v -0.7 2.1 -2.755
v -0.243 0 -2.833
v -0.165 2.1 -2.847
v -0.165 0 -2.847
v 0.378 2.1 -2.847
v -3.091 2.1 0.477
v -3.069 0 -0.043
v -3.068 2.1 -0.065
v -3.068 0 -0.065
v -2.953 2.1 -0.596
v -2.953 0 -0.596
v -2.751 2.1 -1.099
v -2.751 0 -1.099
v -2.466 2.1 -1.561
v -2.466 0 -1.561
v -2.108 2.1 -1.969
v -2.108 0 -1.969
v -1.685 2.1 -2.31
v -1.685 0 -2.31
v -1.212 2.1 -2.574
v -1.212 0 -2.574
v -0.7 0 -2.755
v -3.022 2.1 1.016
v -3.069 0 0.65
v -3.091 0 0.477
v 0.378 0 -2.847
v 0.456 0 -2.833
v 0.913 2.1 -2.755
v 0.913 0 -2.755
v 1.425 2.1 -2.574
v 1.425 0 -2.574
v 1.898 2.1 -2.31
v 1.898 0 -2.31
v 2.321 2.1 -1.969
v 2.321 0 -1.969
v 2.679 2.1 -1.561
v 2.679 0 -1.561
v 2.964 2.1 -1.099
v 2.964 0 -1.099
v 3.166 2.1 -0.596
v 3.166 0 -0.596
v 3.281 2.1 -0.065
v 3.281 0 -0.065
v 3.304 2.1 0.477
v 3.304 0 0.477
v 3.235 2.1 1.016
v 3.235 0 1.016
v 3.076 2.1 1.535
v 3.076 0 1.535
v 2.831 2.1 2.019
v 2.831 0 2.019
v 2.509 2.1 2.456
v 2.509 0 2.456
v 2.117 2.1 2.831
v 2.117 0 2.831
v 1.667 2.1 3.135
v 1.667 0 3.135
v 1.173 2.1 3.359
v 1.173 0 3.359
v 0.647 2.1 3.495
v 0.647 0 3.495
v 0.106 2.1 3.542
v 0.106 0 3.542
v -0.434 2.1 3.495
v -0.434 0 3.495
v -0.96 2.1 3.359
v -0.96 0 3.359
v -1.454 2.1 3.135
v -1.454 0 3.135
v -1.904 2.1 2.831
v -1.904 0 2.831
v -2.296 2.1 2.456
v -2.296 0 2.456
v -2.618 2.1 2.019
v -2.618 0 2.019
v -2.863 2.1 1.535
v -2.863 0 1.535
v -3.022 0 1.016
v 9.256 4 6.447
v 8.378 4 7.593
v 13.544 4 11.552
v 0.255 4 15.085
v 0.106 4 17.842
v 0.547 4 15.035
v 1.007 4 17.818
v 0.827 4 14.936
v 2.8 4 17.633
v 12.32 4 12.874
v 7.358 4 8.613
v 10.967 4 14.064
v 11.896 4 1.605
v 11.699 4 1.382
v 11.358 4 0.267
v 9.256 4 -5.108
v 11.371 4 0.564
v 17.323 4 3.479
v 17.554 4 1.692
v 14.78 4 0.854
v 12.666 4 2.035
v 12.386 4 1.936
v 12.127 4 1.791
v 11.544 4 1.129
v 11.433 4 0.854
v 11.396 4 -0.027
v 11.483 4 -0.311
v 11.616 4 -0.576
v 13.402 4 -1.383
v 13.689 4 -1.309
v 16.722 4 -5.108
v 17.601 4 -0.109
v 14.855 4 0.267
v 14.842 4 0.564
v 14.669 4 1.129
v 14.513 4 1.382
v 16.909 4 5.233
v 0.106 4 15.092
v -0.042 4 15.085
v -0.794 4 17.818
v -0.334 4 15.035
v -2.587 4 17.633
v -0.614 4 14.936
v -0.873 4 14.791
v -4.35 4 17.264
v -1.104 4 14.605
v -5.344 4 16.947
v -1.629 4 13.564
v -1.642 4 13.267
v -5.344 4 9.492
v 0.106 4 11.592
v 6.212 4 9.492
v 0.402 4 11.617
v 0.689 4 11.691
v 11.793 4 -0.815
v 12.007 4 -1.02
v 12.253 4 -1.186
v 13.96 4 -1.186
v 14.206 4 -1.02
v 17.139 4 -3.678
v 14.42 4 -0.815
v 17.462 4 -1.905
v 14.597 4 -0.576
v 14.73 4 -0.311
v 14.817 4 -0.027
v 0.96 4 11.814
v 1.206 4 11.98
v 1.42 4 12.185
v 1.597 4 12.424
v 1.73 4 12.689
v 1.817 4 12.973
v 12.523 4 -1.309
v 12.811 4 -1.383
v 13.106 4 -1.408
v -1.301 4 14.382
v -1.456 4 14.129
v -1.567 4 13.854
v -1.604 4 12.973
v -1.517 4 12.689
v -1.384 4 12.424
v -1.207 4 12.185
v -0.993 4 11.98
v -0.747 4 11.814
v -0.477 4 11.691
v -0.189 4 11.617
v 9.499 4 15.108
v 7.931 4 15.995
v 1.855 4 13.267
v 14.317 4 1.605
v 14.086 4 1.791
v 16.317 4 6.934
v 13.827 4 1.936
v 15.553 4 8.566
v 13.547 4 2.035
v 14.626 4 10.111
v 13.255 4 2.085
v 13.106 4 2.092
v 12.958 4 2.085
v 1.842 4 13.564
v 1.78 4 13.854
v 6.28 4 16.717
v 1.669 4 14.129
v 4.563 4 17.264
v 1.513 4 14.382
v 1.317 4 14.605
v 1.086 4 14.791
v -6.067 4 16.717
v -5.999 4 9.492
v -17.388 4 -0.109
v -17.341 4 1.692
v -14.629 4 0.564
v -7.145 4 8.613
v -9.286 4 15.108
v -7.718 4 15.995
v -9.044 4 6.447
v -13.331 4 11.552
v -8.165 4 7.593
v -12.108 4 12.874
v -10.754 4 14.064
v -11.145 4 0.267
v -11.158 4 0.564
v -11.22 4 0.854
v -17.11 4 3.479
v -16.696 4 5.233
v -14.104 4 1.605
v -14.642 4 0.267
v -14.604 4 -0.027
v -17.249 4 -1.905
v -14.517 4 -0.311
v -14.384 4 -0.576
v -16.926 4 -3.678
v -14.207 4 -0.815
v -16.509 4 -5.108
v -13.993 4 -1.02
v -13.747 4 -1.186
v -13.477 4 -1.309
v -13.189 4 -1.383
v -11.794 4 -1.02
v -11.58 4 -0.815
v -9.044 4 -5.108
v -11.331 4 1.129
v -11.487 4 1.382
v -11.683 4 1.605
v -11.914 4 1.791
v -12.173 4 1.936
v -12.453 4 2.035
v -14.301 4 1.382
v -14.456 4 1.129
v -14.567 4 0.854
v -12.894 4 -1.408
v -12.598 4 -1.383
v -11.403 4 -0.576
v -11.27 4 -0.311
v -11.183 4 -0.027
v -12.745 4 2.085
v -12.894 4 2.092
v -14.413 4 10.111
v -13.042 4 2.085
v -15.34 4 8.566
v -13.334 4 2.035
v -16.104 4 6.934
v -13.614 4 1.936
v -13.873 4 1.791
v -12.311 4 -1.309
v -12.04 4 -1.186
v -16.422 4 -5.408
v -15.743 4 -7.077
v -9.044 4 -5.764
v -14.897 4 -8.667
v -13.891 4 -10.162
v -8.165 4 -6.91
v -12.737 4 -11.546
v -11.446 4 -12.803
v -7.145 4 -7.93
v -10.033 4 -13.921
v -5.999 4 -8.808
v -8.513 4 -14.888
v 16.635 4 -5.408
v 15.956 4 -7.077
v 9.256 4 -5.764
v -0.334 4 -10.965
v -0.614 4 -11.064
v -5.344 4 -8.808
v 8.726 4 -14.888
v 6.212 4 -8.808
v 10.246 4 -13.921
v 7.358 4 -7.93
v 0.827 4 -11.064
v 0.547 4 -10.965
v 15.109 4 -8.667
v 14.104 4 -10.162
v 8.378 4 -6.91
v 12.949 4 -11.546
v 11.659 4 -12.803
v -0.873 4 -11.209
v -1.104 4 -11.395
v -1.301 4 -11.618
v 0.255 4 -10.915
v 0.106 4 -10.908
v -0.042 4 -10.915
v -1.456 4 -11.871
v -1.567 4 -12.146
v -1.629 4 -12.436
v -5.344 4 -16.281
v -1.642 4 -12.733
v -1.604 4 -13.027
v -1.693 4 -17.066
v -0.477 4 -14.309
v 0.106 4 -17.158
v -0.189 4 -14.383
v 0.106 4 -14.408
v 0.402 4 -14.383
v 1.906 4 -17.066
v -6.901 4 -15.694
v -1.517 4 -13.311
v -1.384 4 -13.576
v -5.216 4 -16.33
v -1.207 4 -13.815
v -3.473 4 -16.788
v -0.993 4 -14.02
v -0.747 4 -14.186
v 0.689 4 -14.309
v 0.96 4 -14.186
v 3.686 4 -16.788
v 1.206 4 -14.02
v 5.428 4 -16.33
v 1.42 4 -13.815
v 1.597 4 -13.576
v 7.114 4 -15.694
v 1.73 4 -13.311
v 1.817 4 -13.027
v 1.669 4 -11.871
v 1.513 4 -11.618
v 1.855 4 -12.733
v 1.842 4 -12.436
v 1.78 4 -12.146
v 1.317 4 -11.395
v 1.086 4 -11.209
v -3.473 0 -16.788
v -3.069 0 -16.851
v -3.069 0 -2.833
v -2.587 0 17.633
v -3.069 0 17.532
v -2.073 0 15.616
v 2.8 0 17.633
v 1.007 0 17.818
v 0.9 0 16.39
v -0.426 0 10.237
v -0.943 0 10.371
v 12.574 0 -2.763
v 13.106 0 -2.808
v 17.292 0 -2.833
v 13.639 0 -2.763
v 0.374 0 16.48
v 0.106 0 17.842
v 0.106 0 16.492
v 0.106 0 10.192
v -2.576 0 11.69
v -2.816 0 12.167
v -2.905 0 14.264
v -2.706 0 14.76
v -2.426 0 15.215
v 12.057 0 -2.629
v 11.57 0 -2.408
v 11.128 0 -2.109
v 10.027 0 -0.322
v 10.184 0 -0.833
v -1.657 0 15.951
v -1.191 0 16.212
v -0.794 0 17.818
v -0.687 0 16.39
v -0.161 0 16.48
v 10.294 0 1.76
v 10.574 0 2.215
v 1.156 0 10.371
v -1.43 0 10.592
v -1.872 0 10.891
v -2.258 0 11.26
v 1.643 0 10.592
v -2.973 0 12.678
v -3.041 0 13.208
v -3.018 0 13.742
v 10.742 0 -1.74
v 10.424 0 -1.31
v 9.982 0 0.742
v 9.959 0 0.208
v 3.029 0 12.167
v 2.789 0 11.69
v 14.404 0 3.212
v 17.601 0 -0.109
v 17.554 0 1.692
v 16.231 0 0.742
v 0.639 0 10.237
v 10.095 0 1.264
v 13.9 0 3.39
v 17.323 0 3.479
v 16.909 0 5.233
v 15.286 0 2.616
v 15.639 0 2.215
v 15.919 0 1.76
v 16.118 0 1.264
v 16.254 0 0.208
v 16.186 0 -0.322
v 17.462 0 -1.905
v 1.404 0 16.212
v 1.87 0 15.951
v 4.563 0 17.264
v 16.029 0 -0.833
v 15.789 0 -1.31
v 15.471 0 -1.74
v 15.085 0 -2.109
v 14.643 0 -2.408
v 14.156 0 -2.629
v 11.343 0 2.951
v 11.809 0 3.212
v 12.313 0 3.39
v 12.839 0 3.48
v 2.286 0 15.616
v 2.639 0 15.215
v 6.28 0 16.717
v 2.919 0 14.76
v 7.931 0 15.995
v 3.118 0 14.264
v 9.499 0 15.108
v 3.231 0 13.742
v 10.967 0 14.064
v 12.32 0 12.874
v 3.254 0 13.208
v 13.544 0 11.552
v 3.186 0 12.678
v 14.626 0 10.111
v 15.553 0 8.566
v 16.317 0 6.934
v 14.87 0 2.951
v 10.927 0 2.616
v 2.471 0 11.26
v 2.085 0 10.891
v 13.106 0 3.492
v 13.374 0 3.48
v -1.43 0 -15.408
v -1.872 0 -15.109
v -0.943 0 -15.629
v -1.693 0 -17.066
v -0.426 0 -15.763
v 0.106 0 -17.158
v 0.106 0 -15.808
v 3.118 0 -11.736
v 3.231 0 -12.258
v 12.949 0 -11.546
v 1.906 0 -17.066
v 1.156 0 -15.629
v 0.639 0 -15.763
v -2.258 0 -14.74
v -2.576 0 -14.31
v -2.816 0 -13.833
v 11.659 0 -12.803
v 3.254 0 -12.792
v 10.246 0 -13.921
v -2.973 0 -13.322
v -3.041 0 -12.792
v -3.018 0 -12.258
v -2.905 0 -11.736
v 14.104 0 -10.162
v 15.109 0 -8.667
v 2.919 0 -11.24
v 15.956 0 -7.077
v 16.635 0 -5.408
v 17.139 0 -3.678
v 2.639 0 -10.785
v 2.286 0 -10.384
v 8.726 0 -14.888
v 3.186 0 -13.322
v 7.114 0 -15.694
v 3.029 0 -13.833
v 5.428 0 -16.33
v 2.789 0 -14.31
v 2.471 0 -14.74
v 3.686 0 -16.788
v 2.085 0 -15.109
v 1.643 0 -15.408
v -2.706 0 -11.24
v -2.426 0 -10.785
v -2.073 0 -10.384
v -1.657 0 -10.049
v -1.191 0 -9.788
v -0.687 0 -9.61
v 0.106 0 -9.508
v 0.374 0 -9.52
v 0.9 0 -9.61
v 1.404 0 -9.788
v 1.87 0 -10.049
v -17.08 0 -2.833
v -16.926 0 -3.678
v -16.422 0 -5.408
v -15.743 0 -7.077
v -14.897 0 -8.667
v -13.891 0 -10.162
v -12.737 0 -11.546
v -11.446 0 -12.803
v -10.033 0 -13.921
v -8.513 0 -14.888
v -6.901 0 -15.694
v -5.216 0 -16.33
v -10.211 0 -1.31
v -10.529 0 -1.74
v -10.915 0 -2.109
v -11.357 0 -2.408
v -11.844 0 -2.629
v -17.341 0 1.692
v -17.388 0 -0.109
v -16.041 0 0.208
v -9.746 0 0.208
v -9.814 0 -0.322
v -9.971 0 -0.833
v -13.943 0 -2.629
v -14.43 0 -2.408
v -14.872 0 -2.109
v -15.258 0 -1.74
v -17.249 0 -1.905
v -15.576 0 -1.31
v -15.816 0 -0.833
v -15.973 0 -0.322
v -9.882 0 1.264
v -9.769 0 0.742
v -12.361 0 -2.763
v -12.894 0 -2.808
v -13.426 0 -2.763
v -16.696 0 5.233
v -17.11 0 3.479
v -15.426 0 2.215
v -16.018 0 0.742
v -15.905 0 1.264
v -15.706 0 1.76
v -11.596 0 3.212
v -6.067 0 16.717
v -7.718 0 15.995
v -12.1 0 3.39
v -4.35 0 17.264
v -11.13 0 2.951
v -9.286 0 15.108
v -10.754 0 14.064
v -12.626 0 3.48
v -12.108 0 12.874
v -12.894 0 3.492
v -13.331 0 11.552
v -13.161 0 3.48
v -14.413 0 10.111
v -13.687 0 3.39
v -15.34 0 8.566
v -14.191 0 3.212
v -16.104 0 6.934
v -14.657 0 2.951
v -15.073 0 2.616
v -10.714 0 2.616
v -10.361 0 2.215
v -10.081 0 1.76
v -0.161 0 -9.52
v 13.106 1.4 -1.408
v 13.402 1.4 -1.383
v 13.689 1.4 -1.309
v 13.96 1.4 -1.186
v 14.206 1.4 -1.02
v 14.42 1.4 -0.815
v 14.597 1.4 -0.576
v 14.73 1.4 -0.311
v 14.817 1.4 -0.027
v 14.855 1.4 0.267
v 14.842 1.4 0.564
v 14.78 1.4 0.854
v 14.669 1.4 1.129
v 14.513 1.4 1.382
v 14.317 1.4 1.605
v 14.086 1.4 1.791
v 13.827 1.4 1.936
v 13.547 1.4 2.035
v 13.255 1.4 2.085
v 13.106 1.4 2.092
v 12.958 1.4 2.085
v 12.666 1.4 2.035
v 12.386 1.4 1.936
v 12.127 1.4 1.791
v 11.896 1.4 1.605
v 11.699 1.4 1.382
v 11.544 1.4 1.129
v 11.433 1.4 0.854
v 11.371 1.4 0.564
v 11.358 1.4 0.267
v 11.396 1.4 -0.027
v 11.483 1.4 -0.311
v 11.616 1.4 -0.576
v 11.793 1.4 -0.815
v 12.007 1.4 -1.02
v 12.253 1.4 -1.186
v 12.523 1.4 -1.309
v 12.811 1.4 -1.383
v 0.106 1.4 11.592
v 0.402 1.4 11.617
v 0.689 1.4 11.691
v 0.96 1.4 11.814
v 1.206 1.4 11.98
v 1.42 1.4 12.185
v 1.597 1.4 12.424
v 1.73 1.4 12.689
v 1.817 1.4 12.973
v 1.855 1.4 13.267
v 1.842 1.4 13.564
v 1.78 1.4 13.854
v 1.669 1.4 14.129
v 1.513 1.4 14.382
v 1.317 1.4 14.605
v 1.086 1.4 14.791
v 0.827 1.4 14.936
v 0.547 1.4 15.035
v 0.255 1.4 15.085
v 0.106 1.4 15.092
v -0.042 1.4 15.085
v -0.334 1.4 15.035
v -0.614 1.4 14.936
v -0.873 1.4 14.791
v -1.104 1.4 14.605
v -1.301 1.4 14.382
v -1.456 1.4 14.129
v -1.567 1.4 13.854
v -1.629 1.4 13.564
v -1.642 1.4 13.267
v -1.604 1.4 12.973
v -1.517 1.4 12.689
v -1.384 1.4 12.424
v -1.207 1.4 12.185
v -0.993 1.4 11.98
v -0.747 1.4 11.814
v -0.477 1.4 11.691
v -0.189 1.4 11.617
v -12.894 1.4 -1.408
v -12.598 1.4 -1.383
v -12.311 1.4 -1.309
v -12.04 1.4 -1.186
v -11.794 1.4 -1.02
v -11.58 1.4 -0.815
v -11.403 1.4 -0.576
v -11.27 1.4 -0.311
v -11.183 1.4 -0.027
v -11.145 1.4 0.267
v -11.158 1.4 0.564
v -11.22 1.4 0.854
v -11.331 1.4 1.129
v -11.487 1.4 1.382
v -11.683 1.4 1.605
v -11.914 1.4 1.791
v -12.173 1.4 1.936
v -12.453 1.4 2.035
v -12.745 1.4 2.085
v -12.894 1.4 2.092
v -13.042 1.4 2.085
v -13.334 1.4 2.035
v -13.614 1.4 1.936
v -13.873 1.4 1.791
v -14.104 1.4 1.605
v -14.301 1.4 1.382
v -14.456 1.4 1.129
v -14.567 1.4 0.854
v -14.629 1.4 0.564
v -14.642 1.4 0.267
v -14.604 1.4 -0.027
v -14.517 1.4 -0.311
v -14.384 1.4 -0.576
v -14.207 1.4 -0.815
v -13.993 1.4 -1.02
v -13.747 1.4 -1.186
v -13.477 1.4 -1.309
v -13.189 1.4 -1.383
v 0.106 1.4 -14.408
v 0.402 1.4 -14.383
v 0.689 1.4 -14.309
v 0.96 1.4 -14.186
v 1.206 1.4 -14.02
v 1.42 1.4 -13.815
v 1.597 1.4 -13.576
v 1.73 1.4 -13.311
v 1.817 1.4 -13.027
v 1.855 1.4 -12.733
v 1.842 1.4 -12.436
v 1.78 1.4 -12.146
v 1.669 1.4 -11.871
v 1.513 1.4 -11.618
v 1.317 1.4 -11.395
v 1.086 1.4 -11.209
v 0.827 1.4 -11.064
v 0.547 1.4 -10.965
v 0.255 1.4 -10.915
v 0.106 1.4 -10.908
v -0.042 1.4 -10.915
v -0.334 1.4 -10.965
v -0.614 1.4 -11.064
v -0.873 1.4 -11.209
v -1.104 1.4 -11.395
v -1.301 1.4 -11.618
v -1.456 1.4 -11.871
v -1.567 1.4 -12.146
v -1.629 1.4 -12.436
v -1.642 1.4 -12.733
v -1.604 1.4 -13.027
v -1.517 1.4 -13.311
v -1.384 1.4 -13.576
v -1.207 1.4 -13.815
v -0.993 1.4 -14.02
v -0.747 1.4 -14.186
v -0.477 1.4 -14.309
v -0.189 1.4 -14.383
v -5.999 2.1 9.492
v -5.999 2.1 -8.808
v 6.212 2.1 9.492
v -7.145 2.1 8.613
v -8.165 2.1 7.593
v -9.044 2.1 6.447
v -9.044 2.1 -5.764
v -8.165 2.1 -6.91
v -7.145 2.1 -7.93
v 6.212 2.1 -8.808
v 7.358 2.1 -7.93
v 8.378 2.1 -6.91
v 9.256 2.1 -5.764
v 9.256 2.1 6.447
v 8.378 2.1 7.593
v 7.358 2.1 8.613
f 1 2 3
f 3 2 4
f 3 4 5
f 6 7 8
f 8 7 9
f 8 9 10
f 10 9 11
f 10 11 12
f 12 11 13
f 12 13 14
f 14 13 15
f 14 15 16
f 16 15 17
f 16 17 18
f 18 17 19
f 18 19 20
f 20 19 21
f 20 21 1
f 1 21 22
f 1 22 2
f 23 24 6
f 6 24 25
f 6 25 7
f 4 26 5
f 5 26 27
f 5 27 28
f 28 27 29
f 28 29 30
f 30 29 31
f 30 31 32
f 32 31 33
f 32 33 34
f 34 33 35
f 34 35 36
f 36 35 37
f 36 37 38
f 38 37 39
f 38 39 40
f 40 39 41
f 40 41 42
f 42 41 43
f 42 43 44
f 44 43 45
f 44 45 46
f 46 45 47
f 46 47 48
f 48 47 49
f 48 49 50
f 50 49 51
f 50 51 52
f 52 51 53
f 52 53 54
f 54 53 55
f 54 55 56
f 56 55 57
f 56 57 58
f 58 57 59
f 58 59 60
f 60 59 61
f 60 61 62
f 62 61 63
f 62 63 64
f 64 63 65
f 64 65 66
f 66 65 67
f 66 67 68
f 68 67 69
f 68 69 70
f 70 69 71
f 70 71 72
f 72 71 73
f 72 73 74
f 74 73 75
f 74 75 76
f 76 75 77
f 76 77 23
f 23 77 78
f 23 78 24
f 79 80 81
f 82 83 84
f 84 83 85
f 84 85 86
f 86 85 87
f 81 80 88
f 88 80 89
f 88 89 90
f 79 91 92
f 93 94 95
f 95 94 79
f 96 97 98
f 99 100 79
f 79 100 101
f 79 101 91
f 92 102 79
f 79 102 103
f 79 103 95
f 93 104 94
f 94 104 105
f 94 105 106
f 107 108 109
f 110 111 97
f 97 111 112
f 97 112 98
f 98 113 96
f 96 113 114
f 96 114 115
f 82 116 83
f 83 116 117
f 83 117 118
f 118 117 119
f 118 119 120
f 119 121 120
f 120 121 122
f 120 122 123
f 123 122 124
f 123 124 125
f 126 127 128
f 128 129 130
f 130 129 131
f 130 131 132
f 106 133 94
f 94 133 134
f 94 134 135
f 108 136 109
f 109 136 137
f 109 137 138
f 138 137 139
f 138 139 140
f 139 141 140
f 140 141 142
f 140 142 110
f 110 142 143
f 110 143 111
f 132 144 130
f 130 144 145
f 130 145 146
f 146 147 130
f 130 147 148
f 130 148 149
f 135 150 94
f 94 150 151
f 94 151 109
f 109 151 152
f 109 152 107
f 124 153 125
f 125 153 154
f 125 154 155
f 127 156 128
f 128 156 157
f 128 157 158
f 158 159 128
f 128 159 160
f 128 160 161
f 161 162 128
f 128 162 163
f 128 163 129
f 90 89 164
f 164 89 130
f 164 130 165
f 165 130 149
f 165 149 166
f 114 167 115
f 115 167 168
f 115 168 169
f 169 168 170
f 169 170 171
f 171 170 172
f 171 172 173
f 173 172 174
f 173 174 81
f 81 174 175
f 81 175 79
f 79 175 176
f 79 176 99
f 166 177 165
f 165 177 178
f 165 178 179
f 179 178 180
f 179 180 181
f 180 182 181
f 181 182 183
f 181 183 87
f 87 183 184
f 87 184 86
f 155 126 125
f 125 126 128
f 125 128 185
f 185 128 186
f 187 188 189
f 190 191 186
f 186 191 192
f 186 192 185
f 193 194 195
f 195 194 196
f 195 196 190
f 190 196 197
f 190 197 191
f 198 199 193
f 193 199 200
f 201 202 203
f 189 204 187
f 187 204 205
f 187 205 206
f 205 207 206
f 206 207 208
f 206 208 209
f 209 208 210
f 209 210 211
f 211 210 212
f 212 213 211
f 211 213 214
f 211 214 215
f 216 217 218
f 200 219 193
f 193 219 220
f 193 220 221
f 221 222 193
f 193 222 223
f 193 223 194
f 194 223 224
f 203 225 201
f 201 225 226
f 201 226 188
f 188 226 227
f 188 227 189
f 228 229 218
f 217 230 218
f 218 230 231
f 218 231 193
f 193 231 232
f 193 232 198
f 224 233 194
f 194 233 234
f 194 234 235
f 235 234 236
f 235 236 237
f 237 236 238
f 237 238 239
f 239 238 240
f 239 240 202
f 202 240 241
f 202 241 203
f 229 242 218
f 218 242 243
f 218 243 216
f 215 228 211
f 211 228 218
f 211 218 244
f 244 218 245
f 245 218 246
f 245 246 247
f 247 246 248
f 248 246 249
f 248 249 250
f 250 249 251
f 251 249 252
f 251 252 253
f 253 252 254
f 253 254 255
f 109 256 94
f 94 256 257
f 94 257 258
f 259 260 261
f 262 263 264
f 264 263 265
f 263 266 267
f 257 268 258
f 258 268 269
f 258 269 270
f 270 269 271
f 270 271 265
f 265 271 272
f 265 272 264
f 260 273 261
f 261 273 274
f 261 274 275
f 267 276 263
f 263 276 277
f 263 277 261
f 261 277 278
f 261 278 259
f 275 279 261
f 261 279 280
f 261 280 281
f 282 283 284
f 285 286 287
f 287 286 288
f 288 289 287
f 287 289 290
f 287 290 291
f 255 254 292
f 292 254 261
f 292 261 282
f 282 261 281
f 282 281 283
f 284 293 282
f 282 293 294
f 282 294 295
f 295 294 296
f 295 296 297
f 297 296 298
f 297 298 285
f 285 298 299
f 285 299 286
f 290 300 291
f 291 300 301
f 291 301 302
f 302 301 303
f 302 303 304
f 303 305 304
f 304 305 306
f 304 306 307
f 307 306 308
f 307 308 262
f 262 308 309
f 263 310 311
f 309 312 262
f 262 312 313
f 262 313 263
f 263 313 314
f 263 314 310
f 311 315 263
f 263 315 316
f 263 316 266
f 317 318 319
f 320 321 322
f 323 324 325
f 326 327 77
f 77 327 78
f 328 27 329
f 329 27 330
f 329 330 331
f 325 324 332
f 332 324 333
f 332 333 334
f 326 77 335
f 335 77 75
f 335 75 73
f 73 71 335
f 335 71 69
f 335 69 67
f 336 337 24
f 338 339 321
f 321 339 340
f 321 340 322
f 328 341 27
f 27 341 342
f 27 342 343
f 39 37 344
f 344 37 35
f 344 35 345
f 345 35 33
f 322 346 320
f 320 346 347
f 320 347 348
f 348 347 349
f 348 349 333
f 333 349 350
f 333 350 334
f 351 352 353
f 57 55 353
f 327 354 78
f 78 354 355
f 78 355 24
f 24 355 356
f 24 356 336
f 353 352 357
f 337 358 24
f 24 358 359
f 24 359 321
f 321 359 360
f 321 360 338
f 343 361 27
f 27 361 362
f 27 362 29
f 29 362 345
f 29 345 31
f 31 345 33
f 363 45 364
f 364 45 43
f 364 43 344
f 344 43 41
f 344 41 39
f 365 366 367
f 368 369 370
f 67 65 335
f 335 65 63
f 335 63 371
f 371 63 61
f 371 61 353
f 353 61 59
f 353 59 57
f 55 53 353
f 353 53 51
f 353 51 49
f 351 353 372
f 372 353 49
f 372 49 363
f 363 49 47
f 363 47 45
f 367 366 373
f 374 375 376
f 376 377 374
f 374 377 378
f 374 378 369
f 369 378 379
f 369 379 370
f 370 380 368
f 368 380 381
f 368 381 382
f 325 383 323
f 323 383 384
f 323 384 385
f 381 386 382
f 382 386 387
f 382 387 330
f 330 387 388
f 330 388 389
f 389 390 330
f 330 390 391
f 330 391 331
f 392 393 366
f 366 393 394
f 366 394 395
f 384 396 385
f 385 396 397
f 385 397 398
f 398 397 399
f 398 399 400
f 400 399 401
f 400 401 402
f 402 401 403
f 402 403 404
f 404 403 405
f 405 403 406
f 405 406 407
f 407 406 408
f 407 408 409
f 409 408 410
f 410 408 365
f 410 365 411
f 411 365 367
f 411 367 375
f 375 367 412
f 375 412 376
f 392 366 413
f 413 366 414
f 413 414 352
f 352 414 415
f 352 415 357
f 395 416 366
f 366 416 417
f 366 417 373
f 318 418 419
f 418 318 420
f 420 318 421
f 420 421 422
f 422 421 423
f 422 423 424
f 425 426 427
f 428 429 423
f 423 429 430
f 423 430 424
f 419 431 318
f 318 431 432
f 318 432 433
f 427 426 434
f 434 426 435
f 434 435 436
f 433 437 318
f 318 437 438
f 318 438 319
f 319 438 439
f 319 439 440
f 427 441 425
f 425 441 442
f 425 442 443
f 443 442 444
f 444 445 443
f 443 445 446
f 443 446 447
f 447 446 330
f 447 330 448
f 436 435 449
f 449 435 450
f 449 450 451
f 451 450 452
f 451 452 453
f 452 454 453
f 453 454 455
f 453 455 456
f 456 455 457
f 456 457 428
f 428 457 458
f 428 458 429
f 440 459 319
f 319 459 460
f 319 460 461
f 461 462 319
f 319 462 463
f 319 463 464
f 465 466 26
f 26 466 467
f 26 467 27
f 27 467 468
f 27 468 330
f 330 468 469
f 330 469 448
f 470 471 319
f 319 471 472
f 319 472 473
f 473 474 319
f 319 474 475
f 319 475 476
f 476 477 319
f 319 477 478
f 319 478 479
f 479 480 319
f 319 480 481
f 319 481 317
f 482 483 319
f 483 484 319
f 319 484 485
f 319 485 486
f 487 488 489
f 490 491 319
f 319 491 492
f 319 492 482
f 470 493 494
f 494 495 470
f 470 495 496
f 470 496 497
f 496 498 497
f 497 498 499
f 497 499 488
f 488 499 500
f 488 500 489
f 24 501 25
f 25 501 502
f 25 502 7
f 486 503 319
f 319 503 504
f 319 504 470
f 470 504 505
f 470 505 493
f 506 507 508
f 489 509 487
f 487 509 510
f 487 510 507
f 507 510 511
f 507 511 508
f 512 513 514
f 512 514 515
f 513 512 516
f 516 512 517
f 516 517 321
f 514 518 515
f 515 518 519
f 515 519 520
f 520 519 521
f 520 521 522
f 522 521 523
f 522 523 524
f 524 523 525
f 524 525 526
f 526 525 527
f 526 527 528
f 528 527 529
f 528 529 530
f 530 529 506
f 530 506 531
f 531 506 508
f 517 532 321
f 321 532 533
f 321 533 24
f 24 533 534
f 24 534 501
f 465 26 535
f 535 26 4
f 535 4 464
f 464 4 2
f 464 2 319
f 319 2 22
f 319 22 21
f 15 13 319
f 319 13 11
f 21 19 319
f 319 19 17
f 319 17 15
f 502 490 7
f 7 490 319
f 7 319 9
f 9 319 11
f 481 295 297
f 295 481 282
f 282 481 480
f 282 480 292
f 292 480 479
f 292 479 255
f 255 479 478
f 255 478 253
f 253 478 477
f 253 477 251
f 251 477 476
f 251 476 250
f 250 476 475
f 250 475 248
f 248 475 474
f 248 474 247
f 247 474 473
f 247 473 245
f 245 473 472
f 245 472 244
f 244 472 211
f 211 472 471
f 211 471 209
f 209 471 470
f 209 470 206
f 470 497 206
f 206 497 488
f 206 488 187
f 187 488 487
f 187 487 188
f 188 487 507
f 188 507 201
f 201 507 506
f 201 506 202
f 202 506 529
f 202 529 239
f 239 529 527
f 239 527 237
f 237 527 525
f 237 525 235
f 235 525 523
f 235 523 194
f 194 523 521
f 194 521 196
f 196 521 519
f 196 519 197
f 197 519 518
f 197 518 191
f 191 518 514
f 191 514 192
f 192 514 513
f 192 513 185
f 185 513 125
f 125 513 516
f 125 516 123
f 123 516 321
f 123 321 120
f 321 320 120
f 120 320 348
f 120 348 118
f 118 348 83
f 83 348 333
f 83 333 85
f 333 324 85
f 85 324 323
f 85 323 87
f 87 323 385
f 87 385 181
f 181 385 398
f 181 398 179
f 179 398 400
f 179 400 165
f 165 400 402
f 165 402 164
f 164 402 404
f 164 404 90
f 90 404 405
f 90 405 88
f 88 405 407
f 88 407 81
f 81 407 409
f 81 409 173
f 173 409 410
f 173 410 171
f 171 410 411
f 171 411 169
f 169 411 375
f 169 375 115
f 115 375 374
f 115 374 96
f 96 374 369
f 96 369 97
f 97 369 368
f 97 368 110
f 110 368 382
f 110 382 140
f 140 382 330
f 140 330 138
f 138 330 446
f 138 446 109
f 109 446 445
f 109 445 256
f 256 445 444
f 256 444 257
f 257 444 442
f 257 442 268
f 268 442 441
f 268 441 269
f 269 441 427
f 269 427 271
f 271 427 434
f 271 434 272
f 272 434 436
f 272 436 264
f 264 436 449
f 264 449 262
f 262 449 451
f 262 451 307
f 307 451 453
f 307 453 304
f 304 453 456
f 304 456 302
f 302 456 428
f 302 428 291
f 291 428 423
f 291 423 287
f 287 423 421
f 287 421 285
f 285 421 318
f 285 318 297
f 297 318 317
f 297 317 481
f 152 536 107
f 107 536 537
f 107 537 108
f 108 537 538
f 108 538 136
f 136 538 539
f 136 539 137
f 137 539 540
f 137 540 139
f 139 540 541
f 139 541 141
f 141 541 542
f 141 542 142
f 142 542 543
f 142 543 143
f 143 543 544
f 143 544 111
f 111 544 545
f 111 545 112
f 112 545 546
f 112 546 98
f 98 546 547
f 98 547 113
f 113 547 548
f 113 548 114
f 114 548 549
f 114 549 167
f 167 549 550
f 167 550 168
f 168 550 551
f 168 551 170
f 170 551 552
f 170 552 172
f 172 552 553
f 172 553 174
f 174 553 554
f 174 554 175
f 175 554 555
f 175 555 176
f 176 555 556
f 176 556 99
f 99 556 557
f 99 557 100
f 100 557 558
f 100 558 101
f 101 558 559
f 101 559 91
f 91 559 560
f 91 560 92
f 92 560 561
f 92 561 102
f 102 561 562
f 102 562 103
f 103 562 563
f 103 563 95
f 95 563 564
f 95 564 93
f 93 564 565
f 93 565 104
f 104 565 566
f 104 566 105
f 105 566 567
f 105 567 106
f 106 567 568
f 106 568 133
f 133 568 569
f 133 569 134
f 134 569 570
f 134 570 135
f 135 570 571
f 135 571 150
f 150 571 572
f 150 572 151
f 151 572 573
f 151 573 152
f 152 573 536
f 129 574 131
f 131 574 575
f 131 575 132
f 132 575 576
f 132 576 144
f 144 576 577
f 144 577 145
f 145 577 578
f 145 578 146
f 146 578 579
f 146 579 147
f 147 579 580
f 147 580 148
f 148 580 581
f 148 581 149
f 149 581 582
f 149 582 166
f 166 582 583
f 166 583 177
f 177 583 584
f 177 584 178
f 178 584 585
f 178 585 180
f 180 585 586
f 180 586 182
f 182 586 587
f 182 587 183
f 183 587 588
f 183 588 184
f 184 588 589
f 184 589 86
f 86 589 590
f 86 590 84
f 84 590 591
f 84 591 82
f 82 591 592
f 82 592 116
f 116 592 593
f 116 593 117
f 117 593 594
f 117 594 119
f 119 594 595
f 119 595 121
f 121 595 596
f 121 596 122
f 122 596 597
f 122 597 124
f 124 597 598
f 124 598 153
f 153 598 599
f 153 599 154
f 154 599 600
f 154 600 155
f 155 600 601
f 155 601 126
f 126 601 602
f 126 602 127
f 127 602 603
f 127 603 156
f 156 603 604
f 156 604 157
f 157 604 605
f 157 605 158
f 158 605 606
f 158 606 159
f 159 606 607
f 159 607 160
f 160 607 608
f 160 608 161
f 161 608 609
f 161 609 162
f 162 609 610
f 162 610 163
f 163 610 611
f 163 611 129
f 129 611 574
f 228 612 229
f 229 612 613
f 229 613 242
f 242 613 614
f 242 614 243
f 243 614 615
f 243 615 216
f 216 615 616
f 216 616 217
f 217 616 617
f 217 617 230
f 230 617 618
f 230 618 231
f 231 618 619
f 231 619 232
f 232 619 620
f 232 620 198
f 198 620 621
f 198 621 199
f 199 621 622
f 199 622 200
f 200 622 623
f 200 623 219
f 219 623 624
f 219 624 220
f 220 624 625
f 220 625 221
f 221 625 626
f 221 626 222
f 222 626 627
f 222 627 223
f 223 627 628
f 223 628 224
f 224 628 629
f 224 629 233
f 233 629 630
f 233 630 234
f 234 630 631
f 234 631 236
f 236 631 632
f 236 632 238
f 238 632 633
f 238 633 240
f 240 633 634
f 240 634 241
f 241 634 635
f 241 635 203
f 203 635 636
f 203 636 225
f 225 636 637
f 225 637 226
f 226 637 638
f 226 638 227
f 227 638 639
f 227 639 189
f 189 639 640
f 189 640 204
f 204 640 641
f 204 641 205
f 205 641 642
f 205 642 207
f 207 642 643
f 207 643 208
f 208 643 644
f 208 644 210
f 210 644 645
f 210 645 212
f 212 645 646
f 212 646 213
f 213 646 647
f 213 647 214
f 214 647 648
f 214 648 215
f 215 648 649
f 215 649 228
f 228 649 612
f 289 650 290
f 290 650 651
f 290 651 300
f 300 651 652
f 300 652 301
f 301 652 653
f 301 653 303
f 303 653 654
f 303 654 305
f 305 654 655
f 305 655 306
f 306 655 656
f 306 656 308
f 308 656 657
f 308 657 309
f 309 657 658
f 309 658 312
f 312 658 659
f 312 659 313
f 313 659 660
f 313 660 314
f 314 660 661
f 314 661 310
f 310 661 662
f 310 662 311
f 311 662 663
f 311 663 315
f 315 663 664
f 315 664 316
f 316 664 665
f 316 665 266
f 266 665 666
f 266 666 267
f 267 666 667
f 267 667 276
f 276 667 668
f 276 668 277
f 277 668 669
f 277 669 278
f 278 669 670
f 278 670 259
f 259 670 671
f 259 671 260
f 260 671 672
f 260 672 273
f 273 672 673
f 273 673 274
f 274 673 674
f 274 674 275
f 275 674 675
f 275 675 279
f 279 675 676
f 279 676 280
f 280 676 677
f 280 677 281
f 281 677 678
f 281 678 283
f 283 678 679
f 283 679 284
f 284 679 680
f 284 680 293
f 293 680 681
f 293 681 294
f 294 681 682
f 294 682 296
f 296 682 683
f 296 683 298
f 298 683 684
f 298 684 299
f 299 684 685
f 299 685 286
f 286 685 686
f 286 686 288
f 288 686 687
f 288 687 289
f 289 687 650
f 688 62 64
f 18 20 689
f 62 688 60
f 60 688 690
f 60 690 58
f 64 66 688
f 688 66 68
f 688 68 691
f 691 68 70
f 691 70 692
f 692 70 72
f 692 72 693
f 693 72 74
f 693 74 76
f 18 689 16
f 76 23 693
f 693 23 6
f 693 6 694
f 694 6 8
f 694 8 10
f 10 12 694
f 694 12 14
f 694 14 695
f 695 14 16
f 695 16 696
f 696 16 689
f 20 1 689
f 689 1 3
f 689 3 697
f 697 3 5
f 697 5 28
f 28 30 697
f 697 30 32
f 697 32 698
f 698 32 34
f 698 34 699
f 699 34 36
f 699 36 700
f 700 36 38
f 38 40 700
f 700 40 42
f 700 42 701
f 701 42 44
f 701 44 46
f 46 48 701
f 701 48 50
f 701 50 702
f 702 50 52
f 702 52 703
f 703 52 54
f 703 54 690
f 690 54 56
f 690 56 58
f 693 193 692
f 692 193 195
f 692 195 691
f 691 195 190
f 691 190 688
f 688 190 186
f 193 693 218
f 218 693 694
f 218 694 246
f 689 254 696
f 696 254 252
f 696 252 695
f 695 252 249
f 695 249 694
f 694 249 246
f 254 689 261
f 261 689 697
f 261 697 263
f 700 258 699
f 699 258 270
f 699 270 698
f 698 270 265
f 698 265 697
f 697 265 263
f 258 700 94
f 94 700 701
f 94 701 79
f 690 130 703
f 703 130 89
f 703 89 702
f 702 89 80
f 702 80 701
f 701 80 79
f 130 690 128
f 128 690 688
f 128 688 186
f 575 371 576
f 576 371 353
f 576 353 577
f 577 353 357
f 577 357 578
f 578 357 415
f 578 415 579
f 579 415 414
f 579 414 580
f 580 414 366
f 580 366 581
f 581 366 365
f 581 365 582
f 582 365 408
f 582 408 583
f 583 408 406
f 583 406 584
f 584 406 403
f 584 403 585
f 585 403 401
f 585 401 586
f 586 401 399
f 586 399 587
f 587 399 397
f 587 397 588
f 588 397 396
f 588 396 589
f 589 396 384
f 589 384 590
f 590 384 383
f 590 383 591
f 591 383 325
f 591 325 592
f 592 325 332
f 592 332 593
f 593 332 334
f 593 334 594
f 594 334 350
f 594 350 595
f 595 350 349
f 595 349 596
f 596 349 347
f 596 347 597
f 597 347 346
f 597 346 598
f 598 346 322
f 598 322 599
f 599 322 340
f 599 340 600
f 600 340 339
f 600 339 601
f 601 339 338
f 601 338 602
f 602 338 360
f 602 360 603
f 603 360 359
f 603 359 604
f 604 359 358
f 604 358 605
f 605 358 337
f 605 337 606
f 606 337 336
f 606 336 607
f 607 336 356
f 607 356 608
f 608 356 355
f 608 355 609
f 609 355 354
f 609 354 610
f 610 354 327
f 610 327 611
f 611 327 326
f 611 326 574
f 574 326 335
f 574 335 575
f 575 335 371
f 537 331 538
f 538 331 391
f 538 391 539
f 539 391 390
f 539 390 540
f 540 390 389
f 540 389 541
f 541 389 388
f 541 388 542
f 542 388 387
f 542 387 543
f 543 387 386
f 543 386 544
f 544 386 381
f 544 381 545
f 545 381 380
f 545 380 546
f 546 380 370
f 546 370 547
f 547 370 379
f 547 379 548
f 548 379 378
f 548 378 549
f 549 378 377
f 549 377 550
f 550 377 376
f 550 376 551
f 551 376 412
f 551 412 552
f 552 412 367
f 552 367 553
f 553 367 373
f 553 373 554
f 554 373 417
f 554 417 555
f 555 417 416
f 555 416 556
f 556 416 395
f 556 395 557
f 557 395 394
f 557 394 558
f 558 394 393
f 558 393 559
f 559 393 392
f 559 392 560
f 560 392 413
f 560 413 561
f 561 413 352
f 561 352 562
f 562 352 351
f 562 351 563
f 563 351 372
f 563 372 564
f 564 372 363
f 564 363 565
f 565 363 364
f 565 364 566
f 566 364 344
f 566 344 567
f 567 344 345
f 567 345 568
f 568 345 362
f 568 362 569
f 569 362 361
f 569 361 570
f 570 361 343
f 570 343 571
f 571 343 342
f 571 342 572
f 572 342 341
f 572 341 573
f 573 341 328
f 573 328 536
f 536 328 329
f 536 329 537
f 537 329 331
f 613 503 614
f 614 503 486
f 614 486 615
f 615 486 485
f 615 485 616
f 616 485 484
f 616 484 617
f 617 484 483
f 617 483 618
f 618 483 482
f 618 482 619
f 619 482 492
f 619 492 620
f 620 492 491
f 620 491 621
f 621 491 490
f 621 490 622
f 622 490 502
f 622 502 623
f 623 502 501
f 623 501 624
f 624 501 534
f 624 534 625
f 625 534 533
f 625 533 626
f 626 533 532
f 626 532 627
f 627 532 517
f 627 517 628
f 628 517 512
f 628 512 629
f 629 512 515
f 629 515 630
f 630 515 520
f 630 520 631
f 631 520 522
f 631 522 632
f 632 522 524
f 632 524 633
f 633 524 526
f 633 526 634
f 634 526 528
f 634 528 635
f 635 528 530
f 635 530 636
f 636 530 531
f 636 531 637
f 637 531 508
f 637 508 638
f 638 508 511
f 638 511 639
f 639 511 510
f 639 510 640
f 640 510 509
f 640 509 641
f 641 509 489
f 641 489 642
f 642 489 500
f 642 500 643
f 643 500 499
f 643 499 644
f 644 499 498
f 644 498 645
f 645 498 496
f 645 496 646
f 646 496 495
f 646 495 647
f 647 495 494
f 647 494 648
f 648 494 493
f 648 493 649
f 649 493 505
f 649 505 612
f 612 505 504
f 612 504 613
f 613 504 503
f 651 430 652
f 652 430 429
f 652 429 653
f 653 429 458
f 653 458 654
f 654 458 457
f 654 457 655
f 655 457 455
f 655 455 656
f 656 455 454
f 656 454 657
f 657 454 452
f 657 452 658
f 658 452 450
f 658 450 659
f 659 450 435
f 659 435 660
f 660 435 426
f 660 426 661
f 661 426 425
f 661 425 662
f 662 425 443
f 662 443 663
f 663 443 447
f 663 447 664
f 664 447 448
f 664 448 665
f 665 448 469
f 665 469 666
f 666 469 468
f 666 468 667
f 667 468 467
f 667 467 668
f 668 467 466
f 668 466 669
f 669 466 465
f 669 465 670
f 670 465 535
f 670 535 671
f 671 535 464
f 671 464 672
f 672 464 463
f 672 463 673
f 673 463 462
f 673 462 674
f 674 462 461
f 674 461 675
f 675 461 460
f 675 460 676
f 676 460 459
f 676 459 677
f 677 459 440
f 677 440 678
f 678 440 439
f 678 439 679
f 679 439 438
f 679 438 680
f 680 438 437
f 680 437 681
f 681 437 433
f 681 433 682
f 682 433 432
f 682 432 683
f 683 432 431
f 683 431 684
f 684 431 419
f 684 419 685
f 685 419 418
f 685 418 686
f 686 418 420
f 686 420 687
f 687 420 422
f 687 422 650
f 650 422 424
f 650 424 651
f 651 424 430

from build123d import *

# Parameters (mm, degrees)
SKETCH_1_R          = 17.5
SKETCH_1_R_2        = 1.75
EXTRUDE_1_DEPTH     = 4
SKETCH_2_R          = 3.2
CUT_EXTRUDE_1_DEPTH = 5
CUT_EXTRUDE_2_DEPTH = 1.9
CHAMFER_1_SIZE      = 1.4


with BuildPart() as part:
    # Эскиз1 → Бобышка-Вытянуть1 (new body)
    with BuildSketch(Plane(origin=(0, 0, 0), x_dir=(1, 0, 0), z_dir=(0, 1, 0))):
        with Locations((0.106470277, -0.341512656)):
            Circle(SKETCH_1_R)
        with Locations((13.106470277, -0.341512656)):
            Circle(SKETCH_1_R_2, mode=Mode.SUBTRACT)
        with Locations((0.106470277, -13.341512656)):
            Circle(SKETCH_1_R_2, mode=Mode.SUBTRACT)
        with Locations((-12.893529723, -0.341512656)):
            Circle(SKETCH_1_R_2, mode=Mode.SUBTRACT)
        with Locations((0.106470277, 12.658487344)):
            Circle(SKETCH_1_R_2, mode=Mode.SUBTRACT)
    extrude(amount=EXTRUDE_1_DEPTH)

    # Эскиз2 → Вырез-Вытянуть1 (cut, through all)
    with BuildSketch(Plane(origin=(0, 4, 0), x_dir=(1, 0, 0), z_dir=(0, 1, 0))):
        with Locations((0.106470277, -0.341512656)):
            Circle(SKETCH_2_R)
    extrude(amount=-CUT_EXTRUDE_1_DEPTH, mode=Mode.SUBTRACT)

    # Эскиз3 → Вырез-Вытянуть2 (cut)
    with BuildSketch(Plane(origin=(0, 4, 0), x_dir=(1, 0, 0), z_dir=(0, 1, 0))):
        with BuildLine():
            Line((6.212000557, 8.808487344), (-5.999060003, 8.808487344))
            ThreePointArc((-5.999060003, 8.808487344), (-7.671704316, 7.436661937), (-9.043529723, 5.764017624))
            Line((-9.043529723, 5.764017624), (-9.043529723, -6.447042936))
            ThreePointArc((-9.043529723, -6.447042936), (-7.671704316, -8.119687249), (-5.999060003, -9.491512656))
            Line((-5.999060003, -9.491512656), (6.212000557, -9.491512656))
            ThreePointArc((6.212000557, -9.491512656), (7.88464487, -8.119687249), (9.256470277, -6.447042936))
            Line((9.256470277, -6.447042936), (9.256470277, 5.764017624))
            ThreePointArc((9.256470277, 5.764017624), (7.88464487, 7.436661937), (6.212000557, 8.808487344))
        make_face()
    extrude(amount=-CUT_EXTRUDE_2_DEPTH, mode=Mode.SUBTRACT)

    # Фаска1
    chamfer_1_edges = [part.edges().sort_by_distance(p)[0] for p in [
        (-14.643529723, 0, 0.341512656),
        (-1.643529723, 0, -12.658487344),
        (11.356470277, 0, 0.341512656),
        (-1.643529723, 0, 13.341512656),
    ]]
    chamfer(chamfer_1_edges, length=CHAMFER_1_SIZE)


solid = part.part
